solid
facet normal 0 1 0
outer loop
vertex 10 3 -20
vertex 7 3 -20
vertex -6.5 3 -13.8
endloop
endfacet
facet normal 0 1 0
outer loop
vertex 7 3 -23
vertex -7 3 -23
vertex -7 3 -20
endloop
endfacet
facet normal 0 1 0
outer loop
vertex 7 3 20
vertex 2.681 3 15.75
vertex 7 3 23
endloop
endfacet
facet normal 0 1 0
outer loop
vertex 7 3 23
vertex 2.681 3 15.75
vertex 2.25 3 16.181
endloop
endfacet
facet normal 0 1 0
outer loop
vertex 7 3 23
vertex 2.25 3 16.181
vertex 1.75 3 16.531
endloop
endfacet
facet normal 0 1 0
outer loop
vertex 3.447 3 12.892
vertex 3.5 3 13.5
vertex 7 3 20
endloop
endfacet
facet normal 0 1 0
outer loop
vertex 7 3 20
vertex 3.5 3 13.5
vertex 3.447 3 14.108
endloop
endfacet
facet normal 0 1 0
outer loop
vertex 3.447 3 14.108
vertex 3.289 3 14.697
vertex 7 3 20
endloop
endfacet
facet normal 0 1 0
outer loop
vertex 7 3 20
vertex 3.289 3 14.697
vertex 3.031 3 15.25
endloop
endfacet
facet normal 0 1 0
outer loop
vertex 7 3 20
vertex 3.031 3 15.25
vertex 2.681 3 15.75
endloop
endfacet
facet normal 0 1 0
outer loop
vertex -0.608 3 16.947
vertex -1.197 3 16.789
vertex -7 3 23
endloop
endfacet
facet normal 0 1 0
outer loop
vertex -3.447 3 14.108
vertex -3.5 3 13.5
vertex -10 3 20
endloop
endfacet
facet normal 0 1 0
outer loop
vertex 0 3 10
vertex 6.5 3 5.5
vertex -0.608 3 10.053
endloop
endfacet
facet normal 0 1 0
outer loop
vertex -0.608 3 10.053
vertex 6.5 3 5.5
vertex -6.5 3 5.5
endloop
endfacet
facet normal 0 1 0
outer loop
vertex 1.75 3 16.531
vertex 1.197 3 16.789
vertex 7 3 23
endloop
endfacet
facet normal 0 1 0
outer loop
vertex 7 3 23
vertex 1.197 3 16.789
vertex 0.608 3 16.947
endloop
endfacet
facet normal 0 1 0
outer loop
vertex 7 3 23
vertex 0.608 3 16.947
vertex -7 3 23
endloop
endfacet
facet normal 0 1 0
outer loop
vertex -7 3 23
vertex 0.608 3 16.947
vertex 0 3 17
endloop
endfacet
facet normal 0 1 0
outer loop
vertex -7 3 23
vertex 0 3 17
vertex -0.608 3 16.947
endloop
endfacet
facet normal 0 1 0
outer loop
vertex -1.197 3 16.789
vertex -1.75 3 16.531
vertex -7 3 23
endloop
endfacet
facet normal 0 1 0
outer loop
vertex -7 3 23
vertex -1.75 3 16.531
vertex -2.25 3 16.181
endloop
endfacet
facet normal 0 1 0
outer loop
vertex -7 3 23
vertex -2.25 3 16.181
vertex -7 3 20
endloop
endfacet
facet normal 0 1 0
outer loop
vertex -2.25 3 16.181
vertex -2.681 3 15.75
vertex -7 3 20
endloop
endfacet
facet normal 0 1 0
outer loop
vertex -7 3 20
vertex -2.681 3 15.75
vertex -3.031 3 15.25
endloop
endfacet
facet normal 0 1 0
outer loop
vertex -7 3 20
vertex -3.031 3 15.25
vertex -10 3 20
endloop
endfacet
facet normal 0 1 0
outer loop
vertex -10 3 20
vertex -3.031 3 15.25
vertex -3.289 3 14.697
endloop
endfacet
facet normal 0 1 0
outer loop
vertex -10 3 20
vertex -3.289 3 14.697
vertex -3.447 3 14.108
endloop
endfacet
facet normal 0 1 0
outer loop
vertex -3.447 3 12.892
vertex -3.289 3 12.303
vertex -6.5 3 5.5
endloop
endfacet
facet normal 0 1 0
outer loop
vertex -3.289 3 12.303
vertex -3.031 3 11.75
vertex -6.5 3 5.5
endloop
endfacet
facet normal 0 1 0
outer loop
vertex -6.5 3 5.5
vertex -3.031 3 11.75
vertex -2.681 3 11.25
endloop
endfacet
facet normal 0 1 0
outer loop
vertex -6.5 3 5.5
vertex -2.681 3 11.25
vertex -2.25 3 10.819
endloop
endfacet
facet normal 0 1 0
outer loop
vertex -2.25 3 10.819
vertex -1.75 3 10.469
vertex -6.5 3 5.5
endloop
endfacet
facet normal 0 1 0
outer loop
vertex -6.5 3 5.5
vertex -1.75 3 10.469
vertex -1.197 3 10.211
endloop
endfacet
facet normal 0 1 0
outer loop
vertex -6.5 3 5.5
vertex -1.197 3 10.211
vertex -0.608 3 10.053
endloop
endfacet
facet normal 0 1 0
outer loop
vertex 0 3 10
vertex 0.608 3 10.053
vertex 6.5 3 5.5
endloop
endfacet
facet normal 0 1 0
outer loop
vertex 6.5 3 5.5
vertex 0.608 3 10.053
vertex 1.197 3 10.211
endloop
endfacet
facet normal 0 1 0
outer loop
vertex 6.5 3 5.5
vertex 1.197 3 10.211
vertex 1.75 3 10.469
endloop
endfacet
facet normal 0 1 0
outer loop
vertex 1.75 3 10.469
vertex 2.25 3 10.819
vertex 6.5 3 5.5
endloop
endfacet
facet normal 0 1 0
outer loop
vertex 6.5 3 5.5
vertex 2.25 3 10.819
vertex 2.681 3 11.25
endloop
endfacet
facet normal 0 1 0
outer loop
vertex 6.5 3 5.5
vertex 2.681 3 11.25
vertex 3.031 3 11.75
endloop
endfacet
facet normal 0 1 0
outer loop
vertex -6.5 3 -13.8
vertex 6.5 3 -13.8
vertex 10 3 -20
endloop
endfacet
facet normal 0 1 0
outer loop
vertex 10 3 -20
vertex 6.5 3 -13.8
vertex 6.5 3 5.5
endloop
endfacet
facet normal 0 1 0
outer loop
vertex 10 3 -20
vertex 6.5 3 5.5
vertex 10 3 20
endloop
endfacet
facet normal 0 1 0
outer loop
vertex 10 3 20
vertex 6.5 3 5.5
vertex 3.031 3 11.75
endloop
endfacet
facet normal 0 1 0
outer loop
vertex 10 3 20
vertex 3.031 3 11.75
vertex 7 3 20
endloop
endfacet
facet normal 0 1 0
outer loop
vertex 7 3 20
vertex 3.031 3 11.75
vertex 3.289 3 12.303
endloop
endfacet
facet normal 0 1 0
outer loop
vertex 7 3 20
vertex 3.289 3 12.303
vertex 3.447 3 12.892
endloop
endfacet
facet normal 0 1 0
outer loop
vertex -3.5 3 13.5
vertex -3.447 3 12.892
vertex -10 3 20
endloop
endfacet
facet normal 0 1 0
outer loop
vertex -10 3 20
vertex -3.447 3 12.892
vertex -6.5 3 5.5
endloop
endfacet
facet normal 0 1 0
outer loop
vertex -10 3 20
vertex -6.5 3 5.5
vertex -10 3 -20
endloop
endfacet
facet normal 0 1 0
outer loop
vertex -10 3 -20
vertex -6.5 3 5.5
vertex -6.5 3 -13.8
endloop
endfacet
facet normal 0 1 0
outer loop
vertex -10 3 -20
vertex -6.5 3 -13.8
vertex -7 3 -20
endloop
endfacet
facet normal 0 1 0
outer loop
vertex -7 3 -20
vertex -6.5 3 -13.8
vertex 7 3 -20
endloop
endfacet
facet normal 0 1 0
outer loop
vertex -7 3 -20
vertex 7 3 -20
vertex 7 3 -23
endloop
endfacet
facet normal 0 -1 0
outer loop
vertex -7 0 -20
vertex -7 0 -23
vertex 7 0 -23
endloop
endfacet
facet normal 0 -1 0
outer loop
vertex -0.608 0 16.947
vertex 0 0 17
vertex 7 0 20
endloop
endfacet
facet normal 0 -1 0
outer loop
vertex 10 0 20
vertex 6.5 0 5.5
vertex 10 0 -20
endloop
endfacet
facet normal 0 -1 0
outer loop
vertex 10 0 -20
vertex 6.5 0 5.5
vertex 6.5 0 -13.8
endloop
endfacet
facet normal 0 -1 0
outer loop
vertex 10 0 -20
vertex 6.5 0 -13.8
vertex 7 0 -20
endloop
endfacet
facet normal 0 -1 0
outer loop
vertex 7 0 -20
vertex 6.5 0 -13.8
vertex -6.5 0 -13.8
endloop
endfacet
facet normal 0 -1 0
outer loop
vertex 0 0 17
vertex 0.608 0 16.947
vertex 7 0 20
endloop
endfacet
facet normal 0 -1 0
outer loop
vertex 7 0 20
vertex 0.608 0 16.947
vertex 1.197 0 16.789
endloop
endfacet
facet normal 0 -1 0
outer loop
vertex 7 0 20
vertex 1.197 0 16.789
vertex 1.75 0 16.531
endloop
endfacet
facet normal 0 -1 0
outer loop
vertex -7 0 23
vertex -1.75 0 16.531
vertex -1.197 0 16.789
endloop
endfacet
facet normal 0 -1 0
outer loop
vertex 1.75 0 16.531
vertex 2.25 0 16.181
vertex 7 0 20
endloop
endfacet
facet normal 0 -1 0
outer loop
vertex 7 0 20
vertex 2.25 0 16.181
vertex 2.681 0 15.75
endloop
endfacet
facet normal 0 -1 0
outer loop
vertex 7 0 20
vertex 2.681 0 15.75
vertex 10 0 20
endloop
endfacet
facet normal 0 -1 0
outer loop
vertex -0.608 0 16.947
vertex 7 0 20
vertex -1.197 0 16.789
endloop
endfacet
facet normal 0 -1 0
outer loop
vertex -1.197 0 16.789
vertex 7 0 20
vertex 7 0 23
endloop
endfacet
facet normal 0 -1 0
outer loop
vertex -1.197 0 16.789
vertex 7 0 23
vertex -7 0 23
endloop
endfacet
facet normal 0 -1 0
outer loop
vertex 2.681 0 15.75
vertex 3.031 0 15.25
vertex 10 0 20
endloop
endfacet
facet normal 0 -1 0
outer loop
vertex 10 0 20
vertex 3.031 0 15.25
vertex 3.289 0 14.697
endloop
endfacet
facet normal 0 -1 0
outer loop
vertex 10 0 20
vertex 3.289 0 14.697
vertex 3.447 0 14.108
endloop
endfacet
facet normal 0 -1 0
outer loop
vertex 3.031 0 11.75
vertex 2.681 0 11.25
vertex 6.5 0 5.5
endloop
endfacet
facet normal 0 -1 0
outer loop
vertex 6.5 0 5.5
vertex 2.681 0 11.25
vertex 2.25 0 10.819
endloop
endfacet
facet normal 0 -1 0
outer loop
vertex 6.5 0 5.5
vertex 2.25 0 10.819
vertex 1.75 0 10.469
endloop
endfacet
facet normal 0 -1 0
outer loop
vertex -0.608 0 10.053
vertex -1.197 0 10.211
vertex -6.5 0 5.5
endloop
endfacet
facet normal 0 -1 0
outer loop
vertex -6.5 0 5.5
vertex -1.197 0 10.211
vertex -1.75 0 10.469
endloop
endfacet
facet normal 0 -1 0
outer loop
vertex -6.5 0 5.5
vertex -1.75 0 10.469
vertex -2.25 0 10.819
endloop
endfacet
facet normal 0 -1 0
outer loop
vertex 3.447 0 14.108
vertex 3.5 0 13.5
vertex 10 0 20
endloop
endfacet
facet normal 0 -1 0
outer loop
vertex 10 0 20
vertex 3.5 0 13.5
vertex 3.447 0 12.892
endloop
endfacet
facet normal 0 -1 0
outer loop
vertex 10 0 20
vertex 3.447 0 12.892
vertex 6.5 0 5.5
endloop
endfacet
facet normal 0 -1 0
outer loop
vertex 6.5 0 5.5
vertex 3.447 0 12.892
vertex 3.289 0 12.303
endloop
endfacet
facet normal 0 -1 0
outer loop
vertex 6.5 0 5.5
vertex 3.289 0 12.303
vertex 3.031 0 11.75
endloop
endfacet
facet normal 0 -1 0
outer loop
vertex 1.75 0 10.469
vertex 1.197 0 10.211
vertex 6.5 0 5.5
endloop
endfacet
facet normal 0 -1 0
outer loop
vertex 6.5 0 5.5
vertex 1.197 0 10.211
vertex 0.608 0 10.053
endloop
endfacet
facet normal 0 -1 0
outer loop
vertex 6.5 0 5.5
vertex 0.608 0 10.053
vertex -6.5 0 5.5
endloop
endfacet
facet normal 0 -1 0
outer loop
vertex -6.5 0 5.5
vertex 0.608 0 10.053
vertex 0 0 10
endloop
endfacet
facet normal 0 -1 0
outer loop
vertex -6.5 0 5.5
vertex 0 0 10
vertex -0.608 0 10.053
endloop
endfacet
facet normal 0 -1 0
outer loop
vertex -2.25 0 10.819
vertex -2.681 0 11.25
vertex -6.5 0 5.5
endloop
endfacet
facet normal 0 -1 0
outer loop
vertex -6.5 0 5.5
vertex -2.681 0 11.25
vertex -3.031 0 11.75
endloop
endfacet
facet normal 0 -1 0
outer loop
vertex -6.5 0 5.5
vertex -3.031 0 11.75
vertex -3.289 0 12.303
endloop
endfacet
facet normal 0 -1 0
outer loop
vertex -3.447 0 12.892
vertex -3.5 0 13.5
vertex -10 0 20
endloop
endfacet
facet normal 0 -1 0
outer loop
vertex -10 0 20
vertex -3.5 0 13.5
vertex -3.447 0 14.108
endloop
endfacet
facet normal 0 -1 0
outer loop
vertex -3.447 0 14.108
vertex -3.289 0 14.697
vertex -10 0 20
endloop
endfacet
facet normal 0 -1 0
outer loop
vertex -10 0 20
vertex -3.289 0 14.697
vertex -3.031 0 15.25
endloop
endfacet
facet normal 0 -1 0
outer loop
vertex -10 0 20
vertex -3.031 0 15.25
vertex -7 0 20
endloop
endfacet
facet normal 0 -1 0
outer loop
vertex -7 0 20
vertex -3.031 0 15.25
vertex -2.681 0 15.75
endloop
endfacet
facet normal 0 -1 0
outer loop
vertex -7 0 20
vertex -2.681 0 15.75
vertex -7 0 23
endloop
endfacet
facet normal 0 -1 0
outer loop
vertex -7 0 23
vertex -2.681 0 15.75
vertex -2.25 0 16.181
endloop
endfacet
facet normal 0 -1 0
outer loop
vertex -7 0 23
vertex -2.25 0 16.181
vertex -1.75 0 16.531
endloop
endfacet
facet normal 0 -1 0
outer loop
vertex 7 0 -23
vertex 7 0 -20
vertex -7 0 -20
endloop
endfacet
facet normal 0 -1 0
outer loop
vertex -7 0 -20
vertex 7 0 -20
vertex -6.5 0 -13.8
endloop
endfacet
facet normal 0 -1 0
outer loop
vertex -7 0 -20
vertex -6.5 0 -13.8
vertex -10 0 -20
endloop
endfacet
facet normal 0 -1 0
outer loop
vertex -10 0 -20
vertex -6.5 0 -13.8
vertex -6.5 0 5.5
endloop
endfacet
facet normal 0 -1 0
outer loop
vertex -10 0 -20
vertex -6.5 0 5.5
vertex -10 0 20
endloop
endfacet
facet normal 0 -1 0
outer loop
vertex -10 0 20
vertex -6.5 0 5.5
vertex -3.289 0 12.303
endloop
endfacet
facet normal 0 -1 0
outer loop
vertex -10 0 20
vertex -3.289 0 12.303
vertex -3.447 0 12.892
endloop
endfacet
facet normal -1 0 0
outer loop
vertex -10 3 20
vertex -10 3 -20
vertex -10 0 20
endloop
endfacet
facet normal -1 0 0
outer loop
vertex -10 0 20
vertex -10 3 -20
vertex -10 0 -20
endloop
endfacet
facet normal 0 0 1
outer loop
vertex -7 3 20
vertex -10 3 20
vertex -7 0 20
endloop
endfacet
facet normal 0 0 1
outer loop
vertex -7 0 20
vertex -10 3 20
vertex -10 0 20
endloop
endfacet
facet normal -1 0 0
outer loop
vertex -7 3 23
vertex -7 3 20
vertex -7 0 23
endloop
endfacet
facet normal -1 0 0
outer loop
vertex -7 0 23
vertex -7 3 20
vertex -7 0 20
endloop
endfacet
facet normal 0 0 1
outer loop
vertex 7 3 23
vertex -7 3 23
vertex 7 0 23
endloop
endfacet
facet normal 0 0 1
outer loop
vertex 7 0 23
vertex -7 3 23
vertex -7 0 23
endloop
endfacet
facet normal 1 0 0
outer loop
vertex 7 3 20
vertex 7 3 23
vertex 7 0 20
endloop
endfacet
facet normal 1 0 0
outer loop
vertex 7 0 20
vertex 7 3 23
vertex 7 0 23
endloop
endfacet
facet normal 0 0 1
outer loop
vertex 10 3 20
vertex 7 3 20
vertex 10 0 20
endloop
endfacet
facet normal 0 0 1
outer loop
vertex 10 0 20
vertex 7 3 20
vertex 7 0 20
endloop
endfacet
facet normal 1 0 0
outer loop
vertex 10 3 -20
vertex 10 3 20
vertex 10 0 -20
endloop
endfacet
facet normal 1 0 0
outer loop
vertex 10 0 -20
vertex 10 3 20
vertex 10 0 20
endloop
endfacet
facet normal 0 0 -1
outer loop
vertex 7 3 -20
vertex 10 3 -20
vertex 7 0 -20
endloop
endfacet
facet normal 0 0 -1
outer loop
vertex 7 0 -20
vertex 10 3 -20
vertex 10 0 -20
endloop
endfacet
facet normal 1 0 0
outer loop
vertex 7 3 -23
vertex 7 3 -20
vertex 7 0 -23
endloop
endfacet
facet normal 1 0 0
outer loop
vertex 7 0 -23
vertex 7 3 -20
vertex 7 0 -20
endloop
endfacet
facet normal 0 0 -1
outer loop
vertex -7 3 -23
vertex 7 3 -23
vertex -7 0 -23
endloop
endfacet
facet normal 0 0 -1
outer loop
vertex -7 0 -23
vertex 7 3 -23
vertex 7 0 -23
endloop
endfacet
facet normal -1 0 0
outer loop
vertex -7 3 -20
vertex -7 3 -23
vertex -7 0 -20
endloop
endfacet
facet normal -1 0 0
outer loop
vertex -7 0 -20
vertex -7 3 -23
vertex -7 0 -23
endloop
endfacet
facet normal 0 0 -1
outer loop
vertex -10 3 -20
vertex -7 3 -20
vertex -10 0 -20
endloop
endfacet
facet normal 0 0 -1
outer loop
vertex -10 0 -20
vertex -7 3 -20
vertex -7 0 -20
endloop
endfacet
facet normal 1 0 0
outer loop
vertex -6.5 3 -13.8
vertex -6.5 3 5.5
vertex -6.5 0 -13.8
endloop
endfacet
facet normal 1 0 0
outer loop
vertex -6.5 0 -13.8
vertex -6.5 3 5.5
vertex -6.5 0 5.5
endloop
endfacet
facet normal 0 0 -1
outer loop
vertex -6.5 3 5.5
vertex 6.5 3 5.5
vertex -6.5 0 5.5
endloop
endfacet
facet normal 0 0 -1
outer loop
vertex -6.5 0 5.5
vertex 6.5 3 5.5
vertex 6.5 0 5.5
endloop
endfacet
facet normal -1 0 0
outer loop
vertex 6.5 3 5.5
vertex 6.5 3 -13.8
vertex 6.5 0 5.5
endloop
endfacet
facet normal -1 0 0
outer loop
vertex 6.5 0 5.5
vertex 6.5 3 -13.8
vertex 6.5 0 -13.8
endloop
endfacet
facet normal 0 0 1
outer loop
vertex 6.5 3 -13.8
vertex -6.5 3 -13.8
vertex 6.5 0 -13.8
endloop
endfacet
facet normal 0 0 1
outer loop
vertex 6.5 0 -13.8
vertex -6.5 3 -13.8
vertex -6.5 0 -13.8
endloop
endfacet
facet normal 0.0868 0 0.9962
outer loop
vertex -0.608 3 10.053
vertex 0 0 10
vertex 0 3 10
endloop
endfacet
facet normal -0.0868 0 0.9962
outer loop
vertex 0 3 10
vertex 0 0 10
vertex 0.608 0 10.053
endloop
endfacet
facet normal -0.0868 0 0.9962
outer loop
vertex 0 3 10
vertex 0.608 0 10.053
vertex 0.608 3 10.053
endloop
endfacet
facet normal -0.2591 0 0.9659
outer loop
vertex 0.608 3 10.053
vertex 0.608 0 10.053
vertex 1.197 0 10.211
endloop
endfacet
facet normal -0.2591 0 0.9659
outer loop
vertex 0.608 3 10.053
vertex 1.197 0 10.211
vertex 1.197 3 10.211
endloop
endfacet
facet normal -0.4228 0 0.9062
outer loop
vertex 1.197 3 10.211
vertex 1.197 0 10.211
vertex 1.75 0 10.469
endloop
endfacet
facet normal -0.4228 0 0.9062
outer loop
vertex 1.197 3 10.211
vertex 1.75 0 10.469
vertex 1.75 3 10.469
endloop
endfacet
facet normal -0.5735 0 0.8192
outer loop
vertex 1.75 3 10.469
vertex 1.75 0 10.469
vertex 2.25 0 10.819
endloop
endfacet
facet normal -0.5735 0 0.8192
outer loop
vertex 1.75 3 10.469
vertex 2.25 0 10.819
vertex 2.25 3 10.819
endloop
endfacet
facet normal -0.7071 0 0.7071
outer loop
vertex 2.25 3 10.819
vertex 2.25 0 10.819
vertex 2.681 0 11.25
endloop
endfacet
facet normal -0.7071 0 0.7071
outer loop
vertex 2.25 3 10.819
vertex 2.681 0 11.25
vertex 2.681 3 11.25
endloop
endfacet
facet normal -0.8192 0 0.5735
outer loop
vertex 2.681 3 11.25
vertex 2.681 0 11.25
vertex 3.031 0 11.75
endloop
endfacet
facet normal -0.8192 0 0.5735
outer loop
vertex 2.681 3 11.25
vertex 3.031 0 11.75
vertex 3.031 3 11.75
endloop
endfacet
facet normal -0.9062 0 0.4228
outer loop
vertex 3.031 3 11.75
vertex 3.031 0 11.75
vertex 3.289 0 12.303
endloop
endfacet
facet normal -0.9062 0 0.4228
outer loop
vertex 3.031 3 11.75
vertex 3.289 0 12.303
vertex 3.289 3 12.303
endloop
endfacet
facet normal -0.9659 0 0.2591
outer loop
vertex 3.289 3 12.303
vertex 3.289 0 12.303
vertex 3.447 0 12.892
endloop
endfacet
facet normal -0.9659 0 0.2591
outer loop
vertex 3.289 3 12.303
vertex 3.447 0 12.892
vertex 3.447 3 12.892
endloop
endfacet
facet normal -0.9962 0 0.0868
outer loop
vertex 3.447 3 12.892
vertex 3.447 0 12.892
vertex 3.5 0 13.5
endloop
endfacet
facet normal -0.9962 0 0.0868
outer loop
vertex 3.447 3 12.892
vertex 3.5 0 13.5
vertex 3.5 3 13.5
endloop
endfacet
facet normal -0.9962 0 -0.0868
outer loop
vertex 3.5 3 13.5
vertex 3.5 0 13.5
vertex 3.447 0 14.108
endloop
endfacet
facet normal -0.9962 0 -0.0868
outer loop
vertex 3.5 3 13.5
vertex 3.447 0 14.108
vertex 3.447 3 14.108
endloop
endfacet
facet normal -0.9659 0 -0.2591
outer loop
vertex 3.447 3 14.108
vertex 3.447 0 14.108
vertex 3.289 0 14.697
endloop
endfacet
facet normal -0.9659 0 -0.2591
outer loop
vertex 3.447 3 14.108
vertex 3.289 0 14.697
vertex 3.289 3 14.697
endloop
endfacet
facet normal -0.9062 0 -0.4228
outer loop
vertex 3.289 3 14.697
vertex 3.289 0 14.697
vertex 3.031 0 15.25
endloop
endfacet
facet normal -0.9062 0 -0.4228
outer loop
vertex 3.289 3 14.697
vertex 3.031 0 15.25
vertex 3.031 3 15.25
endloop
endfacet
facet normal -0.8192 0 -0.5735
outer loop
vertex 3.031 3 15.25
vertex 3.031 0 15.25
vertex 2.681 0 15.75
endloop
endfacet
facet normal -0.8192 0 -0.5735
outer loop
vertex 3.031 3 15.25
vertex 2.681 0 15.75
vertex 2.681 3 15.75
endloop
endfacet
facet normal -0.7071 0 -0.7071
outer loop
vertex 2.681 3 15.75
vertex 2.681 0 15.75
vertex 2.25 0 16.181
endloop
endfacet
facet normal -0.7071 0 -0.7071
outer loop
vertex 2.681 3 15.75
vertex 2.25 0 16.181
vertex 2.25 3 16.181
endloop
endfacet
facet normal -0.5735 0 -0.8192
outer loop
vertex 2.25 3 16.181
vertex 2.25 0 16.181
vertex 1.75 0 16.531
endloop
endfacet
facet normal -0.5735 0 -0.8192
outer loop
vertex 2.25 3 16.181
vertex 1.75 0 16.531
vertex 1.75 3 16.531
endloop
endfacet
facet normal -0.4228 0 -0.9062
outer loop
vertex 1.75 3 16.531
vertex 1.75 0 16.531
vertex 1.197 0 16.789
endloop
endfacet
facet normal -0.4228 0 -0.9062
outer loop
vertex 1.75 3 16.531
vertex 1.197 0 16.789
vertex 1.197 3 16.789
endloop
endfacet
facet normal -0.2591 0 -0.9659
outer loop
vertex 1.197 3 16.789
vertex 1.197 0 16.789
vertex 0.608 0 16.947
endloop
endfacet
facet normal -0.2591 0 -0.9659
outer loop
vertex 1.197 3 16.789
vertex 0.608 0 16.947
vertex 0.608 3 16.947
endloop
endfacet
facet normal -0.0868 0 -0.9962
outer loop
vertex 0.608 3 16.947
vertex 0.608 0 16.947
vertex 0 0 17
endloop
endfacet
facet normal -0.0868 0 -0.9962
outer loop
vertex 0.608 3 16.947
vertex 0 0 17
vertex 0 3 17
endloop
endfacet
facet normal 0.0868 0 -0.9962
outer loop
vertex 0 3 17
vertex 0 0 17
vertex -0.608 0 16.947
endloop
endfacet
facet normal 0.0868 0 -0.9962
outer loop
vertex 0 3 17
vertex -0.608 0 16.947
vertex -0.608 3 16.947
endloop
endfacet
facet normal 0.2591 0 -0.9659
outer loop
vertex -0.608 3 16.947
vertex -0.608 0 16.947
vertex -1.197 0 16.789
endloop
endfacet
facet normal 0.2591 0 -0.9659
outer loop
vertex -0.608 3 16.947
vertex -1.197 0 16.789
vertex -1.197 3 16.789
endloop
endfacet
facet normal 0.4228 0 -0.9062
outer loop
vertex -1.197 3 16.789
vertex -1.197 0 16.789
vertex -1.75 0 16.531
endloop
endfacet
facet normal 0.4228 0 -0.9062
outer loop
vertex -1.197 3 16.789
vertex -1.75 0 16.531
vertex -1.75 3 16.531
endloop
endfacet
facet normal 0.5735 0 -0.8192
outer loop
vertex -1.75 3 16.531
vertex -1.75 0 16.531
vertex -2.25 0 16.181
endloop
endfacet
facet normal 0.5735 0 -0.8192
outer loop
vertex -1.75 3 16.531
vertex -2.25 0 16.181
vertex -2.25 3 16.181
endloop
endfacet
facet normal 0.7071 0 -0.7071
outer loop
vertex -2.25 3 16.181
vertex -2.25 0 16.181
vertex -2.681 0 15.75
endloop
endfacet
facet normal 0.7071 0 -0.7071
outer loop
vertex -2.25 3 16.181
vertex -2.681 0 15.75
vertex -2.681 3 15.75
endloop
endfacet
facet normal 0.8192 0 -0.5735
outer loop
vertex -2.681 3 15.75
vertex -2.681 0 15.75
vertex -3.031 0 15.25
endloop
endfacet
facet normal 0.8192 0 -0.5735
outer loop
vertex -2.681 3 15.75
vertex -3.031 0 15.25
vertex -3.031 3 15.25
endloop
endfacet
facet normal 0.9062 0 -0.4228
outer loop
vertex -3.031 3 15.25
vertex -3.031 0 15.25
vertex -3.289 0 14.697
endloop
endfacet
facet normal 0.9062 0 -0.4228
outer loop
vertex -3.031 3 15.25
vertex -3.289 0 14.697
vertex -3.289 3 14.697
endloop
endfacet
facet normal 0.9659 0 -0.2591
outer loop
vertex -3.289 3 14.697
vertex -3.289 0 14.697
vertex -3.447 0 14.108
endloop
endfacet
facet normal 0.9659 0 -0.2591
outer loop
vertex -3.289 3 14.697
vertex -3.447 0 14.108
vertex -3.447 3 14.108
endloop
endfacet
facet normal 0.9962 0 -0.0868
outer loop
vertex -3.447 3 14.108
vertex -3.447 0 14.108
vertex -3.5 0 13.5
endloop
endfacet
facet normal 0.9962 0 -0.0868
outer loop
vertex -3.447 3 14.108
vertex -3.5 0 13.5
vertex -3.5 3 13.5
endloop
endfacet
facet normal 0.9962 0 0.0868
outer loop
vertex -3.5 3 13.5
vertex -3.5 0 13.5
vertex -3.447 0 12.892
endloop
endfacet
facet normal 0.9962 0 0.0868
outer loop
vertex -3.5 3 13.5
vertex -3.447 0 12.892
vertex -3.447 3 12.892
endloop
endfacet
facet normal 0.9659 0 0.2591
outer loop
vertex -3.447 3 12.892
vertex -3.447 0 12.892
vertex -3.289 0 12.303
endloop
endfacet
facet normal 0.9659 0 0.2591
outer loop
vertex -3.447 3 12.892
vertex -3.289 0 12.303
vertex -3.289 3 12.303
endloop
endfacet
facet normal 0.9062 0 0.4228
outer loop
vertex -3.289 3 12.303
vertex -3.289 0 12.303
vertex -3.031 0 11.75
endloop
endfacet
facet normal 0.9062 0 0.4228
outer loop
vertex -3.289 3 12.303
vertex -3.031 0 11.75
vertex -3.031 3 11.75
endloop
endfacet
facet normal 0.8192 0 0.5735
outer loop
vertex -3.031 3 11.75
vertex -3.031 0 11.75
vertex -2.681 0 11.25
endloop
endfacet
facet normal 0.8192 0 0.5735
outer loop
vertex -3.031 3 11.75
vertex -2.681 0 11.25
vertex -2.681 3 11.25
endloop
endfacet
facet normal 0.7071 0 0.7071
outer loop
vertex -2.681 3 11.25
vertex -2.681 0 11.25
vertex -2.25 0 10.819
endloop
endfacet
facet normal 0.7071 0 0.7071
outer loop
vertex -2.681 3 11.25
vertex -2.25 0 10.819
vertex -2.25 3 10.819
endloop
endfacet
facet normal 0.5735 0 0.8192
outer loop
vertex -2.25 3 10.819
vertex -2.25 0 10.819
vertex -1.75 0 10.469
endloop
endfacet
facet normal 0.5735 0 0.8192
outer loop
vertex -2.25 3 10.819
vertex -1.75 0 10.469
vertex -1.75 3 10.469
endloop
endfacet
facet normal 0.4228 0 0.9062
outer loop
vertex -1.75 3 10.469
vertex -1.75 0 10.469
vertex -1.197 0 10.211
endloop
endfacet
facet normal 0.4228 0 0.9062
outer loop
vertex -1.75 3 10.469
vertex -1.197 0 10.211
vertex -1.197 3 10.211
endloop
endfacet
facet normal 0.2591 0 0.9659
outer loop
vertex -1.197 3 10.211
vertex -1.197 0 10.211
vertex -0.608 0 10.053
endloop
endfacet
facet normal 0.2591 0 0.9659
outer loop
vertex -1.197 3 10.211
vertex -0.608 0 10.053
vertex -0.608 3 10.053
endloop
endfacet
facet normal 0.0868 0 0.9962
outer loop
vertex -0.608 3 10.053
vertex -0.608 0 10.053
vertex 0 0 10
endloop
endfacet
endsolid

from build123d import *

# Parameters (mm, degrees)
SKETCH1_R           = 3.5
SKETCH1_W           = 13
SKETCH1_H           = 19.3
BOSS_EXTRUDE1_DEPTH = 3


with BuildPart() as part:
    # Sketch1 → Boss-Extrude1 (new body)
    with BuildSketch(Plane(origin=(0, 0, 0), x_dir=(1, 0, 0), z_dir=(0, 1, 0))):
        Polygon((7, 20), (10, 20), (10, -20), (7, -20), (7, -23), (-7, -23), (-7, -20), (-10, -20), (-10, 20), (-7, 20), (-7, 23), (7, 23), align=None)
        with Locations((0, -13.5)):
            Circle(SKETCH1_R, mode=Mode.SUBTRACT)
        with Locations((0, 4.15)):
            Rectangle(SKETCH1_W, SKETCH1_H, mode=Mode.SUBTRACT)
    extrude(amount=BOSS_EXTRUDE1_DEPTH)


solid = part.part
